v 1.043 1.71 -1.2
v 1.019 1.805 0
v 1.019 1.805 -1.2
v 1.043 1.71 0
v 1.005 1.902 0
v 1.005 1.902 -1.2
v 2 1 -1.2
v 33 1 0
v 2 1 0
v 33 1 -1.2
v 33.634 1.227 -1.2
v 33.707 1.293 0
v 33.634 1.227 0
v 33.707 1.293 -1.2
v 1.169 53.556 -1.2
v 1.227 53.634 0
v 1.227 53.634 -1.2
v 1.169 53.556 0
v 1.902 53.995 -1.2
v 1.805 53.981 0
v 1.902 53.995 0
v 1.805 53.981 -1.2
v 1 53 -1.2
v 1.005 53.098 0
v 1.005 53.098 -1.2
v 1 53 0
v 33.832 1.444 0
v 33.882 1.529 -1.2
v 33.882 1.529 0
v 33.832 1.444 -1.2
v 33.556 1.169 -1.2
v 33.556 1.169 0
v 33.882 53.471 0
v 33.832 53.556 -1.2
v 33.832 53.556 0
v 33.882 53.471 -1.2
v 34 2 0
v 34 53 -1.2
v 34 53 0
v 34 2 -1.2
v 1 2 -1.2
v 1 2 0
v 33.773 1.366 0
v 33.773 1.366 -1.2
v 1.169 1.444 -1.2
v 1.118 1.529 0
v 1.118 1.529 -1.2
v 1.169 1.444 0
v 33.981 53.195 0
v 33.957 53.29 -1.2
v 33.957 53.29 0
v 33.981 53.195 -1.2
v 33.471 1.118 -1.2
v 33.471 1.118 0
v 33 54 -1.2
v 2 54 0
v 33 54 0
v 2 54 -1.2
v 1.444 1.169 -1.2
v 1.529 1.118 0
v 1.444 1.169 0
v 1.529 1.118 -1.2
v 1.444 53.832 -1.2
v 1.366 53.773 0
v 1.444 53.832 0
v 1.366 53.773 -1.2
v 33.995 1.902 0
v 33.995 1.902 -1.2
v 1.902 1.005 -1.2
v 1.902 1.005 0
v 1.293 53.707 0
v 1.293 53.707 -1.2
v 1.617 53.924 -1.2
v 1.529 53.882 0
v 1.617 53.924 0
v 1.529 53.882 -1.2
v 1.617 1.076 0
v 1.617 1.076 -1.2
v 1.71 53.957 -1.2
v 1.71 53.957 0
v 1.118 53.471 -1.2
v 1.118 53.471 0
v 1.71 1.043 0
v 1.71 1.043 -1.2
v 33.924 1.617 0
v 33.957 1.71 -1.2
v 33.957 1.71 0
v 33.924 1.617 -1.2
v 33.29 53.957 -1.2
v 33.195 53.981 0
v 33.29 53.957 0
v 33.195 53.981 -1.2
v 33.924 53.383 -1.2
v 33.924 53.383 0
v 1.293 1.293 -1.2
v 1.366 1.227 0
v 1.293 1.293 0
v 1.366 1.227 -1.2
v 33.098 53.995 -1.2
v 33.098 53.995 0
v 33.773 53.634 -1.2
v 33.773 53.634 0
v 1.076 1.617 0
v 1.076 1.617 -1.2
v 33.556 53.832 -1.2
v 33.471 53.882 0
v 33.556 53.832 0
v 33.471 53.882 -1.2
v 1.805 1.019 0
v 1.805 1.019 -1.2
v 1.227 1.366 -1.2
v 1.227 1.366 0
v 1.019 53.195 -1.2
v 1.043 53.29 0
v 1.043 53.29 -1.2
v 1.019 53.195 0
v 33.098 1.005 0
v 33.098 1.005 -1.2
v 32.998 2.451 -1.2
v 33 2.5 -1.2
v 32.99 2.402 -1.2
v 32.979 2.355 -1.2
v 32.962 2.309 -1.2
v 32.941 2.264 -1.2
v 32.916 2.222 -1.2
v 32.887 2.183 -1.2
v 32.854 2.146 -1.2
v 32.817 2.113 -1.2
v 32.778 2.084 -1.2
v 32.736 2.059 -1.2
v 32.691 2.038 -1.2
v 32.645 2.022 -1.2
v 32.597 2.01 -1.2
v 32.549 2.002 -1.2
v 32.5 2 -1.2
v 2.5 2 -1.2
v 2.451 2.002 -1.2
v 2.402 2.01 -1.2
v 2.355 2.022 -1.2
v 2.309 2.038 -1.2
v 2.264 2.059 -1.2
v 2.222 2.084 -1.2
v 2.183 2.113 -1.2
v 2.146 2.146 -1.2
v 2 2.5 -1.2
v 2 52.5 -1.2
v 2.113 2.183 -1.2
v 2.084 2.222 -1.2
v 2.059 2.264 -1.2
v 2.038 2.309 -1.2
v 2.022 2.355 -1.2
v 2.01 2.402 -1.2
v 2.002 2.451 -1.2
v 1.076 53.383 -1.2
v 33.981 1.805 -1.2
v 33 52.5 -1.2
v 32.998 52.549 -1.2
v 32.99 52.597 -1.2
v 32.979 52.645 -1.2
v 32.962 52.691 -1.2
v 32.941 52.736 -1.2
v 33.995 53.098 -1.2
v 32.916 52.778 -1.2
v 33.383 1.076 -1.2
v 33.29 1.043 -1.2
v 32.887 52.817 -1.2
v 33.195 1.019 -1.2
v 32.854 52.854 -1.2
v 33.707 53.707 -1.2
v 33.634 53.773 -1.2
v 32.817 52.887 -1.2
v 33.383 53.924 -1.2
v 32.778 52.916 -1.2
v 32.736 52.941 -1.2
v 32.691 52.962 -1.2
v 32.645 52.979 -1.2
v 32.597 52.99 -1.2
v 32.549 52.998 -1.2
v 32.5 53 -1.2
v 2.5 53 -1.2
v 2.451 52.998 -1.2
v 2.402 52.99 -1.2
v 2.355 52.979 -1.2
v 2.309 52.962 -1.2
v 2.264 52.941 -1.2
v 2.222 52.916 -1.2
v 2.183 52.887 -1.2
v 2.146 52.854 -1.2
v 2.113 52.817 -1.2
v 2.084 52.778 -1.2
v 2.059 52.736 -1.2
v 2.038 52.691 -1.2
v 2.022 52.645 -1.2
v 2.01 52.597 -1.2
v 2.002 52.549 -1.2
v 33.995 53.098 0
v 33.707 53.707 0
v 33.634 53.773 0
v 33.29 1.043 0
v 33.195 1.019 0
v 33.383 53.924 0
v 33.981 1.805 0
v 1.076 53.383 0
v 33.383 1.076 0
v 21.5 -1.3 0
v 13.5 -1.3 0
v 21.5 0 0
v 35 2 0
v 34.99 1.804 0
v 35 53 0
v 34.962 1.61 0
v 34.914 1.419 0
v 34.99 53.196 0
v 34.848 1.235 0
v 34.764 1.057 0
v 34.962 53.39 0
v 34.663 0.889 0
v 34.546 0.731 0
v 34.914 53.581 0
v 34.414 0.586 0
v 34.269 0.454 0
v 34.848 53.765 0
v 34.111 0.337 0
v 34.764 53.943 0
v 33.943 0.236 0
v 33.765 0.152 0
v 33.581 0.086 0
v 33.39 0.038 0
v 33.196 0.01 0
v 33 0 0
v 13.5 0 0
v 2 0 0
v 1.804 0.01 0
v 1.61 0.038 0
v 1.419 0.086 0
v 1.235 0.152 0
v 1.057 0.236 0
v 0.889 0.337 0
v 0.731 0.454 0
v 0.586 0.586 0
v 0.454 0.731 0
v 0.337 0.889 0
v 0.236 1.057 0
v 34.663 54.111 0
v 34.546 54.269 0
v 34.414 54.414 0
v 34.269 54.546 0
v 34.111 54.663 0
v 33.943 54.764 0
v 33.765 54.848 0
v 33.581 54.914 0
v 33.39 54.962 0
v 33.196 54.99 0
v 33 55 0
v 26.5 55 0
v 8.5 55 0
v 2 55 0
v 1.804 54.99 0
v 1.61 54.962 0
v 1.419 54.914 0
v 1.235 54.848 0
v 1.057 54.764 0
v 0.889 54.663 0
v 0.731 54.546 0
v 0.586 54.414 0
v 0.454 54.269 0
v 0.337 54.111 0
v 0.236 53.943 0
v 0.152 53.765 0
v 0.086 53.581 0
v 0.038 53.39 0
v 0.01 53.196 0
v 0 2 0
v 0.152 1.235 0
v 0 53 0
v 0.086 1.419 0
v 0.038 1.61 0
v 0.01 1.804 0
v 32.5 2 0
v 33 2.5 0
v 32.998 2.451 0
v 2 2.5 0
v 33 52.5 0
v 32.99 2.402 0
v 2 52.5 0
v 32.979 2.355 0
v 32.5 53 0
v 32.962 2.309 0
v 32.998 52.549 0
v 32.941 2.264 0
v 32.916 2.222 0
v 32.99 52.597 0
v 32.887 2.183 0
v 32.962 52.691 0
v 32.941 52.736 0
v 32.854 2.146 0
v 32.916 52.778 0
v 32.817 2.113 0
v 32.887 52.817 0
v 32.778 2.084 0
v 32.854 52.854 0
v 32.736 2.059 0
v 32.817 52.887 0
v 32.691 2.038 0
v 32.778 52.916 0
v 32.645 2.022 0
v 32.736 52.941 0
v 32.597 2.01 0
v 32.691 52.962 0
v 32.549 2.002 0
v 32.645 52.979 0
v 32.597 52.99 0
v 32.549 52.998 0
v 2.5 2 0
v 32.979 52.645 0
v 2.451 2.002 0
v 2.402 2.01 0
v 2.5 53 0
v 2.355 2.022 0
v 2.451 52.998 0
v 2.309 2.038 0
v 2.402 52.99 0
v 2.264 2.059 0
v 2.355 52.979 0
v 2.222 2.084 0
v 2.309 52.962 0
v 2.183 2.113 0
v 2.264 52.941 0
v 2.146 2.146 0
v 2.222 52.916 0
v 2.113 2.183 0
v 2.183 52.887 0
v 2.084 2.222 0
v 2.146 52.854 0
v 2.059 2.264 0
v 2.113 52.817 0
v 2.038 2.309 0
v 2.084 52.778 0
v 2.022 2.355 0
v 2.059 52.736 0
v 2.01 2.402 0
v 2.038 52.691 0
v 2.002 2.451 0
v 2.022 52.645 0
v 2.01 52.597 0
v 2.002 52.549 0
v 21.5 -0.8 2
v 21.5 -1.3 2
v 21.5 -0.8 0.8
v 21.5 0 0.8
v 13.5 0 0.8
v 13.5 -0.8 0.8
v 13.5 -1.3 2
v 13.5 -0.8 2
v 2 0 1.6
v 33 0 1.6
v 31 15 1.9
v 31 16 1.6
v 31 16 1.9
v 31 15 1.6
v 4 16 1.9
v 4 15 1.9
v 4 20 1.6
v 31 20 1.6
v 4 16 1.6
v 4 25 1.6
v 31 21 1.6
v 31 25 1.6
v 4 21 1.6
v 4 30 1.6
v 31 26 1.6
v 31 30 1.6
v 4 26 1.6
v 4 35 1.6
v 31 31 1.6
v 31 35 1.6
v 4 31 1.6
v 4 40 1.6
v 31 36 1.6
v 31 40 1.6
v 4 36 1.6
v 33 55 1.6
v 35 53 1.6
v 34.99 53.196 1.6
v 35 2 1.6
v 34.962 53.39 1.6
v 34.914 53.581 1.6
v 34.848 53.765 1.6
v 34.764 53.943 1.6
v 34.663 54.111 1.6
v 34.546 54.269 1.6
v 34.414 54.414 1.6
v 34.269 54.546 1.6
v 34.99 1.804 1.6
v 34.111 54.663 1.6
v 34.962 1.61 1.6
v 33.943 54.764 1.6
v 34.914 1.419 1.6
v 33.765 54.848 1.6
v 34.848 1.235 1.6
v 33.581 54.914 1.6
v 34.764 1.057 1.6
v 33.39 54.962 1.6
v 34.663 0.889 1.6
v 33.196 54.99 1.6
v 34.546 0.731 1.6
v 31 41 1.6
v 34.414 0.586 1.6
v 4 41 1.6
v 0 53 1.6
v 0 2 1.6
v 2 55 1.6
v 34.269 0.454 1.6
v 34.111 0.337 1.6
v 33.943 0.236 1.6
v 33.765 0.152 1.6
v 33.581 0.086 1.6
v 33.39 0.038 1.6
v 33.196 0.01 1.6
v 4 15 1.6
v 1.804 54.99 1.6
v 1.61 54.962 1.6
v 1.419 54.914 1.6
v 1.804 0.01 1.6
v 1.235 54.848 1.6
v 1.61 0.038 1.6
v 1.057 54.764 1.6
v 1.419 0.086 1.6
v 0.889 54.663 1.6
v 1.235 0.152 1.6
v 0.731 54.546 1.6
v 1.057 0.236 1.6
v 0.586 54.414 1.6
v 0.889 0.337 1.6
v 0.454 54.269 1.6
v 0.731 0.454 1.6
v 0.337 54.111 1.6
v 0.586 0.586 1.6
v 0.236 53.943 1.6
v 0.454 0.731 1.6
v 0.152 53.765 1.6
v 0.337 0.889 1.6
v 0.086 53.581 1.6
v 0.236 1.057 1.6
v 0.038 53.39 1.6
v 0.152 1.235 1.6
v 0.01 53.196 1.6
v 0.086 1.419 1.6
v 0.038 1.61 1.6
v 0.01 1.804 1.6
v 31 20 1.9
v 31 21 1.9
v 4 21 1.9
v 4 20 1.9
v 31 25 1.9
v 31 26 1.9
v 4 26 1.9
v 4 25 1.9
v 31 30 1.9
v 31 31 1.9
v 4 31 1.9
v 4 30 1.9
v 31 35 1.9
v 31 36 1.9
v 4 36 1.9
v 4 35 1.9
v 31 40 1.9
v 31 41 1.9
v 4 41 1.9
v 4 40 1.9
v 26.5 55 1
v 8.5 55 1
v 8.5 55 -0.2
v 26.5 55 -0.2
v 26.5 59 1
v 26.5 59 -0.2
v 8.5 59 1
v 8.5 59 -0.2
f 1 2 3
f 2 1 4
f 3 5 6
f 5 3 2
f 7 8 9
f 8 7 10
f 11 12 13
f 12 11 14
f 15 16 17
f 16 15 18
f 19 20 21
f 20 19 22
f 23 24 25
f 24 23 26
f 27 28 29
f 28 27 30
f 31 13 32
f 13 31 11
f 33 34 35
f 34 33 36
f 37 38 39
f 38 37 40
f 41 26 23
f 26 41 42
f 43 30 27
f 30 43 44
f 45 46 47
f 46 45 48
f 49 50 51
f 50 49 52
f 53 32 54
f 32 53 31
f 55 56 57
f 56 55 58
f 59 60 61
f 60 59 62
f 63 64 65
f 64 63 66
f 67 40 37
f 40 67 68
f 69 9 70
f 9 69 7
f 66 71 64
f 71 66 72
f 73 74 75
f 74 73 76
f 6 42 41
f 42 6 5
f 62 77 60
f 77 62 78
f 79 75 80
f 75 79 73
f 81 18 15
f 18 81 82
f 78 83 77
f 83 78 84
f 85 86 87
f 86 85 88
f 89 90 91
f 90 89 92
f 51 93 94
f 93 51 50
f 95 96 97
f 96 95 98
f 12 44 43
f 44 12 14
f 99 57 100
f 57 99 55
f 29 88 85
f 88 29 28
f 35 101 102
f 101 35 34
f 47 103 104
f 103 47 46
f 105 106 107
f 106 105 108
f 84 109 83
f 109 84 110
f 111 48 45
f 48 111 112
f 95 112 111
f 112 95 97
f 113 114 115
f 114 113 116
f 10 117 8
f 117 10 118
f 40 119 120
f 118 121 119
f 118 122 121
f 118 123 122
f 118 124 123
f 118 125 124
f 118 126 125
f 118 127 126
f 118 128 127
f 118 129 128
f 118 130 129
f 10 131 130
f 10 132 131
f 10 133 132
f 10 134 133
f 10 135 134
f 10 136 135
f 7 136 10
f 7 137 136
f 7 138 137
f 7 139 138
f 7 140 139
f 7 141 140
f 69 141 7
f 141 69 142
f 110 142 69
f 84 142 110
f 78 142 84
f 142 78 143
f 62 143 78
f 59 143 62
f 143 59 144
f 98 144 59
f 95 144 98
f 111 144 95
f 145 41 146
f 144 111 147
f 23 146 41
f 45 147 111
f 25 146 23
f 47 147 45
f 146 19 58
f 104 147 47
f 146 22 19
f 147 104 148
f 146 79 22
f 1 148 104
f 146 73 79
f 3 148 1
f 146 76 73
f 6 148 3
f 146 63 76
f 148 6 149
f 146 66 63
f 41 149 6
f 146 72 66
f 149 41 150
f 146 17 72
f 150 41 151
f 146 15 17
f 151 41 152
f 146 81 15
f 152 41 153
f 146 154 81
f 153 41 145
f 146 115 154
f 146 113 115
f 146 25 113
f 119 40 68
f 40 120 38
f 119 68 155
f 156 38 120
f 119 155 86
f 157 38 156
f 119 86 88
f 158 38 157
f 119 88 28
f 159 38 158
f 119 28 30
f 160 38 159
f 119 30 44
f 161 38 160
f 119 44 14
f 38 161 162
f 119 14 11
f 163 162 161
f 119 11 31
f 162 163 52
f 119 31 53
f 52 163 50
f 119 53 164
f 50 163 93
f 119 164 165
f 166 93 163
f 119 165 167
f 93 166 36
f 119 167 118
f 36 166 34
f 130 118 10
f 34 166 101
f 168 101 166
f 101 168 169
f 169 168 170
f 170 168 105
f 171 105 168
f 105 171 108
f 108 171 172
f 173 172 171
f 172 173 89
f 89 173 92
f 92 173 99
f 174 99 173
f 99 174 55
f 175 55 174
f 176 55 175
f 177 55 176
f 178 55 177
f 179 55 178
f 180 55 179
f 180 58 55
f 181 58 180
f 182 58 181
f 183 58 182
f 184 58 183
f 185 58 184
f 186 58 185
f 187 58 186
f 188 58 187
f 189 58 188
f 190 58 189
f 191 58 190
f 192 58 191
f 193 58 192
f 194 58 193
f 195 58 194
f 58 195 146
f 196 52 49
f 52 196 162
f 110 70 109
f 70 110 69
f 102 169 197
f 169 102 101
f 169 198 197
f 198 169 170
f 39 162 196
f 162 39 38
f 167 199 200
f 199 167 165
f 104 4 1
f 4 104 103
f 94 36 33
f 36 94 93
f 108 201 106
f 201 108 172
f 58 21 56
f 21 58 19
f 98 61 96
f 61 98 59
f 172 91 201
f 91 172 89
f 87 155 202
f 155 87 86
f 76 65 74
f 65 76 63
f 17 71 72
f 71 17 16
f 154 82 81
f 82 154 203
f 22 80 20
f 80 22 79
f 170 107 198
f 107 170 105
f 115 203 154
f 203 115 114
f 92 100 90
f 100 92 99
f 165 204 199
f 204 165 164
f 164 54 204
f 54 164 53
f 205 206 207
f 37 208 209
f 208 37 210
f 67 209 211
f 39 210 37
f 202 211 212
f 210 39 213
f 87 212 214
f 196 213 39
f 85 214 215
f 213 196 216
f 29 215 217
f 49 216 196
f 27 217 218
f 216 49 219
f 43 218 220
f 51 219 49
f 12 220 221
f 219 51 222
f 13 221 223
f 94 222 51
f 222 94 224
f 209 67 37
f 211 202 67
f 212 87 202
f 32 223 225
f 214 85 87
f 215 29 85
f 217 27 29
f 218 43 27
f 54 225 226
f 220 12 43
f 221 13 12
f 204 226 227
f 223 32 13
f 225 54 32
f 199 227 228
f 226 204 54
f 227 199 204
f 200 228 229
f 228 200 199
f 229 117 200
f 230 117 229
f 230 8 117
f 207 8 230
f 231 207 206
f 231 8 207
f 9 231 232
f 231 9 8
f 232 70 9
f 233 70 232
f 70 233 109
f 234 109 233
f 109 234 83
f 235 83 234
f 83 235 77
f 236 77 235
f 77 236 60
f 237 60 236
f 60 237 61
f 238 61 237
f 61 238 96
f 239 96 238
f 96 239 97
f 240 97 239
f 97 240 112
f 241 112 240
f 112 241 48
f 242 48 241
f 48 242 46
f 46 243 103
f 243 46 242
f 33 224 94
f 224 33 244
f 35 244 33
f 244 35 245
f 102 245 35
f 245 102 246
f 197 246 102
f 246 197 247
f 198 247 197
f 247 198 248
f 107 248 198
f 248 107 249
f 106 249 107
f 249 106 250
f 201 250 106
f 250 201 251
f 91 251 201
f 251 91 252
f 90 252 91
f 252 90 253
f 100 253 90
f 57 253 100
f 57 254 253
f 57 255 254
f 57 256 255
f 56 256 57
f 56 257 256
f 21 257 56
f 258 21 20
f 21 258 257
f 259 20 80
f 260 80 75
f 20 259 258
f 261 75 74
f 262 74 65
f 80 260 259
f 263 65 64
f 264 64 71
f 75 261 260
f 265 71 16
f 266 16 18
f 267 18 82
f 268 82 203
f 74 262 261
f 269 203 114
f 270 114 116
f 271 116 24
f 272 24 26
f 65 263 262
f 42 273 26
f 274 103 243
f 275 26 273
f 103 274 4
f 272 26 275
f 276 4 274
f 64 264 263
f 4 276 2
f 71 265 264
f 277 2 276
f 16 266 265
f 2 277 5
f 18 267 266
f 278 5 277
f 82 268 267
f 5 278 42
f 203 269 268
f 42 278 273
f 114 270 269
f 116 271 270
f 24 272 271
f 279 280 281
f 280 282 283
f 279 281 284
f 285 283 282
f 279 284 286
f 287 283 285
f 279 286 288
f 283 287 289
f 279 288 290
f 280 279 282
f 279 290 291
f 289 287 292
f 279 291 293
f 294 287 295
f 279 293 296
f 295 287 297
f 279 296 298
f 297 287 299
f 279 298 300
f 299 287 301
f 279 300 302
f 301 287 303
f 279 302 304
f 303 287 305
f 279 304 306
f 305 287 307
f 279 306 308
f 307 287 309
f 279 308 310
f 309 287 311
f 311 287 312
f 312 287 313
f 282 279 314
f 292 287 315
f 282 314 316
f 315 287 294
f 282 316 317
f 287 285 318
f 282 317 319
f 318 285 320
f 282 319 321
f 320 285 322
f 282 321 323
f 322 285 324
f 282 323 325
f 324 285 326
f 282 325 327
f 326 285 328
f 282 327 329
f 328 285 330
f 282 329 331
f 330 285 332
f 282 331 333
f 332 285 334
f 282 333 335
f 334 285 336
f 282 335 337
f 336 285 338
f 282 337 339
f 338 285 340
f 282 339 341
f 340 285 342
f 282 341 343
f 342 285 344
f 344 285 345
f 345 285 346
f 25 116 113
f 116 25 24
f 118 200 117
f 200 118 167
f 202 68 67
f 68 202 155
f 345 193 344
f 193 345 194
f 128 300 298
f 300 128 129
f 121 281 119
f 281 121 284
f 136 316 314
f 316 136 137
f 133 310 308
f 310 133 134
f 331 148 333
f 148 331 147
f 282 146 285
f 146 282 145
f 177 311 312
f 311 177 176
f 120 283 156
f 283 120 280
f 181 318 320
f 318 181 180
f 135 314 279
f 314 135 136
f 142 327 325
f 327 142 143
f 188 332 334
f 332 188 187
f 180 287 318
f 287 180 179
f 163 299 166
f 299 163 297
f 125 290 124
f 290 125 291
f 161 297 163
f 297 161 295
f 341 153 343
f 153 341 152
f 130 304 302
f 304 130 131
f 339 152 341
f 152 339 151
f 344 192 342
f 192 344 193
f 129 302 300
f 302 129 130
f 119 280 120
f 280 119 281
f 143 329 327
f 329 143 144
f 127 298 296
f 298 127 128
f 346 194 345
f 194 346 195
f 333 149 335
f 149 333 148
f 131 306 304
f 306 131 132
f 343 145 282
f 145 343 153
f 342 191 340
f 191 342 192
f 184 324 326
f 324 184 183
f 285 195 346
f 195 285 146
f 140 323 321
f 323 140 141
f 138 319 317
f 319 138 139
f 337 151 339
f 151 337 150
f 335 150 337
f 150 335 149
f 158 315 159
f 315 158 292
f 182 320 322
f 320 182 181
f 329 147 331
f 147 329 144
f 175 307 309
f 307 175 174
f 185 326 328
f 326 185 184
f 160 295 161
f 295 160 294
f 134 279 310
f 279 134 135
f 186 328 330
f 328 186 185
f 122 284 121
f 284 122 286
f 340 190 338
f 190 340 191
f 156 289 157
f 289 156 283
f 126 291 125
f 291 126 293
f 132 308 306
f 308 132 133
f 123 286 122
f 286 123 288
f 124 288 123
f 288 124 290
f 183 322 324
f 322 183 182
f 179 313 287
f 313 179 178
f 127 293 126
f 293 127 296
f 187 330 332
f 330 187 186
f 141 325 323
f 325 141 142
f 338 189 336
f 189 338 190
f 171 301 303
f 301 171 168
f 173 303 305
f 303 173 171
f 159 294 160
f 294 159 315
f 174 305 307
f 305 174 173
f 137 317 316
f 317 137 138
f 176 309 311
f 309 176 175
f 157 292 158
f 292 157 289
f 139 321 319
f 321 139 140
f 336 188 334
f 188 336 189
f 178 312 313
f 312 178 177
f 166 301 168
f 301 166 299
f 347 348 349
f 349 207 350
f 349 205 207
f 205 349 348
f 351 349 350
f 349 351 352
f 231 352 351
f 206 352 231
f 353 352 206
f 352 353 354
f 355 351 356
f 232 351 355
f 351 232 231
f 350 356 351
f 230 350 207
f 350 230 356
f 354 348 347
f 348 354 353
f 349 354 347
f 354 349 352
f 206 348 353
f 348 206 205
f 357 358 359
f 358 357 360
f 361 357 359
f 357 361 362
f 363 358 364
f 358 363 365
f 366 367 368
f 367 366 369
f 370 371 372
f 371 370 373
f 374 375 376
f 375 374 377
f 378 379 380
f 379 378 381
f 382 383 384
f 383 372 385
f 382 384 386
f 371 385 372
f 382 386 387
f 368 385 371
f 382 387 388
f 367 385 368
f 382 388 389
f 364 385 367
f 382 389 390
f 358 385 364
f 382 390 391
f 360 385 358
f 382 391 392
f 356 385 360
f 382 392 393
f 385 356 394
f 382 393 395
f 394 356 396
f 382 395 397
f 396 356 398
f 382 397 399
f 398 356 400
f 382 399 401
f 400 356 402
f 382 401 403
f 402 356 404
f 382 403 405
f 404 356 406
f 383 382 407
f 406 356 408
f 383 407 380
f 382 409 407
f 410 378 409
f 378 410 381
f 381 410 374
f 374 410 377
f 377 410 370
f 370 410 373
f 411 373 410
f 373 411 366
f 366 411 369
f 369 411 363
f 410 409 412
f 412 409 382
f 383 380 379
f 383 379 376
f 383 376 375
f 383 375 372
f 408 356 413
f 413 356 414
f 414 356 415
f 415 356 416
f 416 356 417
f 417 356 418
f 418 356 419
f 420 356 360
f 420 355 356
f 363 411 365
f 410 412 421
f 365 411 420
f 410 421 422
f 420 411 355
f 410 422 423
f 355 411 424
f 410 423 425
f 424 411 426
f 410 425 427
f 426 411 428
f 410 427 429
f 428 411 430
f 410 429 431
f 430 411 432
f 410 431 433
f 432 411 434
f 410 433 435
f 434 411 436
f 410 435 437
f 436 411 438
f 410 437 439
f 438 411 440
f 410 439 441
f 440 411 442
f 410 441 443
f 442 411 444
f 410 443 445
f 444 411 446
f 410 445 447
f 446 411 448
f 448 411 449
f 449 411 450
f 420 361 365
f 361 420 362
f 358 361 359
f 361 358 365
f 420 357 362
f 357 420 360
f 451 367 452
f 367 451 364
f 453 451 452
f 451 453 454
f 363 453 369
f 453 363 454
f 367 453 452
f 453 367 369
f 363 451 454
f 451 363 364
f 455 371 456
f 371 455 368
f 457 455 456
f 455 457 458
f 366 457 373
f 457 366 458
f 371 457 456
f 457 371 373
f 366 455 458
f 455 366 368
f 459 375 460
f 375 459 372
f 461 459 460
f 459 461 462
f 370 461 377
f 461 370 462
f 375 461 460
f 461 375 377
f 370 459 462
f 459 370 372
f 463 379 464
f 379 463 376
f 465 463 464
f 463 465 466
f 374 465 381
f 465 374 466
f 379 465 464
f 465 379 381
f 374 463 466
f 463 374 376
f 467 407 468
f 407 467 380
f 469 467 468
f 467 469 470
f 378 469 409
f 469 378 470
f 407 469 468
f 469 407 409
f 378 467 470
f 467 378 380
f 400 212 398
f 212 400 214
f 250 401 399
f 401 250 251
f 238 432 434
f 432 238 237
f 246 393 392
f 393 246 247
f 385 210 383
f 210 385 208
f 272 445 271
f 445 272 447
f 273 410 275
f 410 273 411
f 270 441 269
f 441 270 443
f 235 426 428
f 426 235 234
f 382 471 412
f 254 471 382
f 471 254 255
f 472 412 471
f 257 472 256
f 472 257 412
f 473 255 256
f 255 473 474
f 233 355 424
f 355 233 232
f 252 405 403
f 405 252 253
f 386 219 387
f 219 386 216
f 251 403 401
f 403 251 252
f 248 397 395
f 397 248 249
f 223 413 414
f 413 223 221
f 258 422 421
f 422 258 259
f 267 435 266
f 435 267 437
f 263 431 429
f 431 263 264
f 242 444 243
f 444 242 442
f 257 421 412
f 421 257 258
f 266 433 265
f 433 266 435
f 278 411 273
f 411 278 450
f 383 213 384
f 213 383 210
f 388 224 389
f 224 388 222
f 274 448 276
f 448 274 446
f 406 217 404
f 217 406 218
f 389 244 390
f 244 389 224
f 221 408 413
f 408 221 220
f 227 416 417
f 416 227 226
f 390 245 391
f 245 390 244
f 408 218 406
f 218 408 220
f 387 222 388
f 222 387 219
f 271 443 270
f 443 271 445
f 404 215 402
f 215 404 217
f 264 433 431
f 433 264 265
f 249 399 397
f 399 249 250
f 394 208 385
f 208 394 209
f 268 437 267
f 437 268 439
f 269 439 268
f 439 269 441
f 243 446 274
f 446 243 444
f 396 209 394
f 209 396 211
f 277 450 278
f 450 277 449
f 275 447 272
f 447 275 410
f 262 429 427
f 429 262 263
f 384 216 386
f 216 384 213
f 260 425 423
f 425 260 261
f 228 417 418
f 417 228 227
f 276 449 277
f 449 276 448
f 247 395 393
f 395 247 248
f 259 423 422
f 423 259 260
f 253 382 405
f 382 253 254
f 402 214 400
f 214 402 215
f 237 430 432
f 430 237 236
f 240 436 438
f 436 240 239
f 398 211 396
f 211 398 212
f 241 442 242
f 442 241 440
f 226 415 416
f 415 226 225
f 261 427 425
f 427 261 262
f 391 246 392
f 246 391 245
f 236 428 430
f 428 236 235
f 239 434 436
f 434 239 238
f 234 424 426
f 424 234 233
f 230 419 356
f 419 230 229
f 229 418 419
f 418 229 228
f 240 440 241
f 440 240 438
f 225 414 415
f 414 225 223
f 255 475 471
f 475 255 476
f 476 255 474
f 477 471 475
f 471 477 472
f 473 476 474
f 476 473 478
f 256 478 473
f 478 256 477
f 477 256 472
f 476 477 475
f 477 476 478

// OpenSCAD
// Game Boy Color (CGB-001) Battery Cover
// Dimensions based on standard GBC battery cover specs
$fn = 64;

// Main cover body dimensions
cover_length = 55.0;   // top to bottom
cover_width  = 35.0;   // left to right
cover_thick  = 1.6;    // wall thickness

// Corner radius
corner_r = 2.0;

// Slide tab at top (slides into console groove)
tab_width = 18.0;
tab_length = 4.0;
tab_thick = 1.2;
tab_offset_z = -0.2; // sits slightly recessed

// Latch catch at bottom (snaps into place)
latch_width = 8.0;
latch_height = 2.0;
latch_depth = 1.0;
latch_thick = 0.8;

// Inner lip/rim around perimeter (sits inside the battery well)
lip_height = 1.2;
lip_inset = 1.0;

// Slight texture ridge (grip lines on original cover)
ridge_count = 6;
ridge_spacing = 5.0;
ridge_width = 1.0;
ridge_height = 0.3;

module rounded_rect(w, l, h, r) {
    hull() {
        for (x = [r, w - r])
            for (y = [r, l - r])
                translate([x, y, 0])
                    cylinder(r = r, h = h);
    }
}

module cover_body() {
    // Main flat cover plate
    rounded_rect(cover_width, cover_length, cover_thick, corner_r);
}

module inner_lip() {
    // Perimeter lip that sits inside the battery compartment
    difference() {
        translate([lip_inset, lip_inset, -lip_height])
            rounded_rect(
                cover_width - 2 * lip_inset,
                cover_length - 2 * lip_inset,
                lip_height,
                corner_r - lip_inset
            );
        translate([lip_inset + lip_inset, lip_inset + lip_inset, -lip_height - 0.1])
            rounded_rect(
                cover_width - 4 * lip_inset,
                cover_length - 4 * lip_inset,
                lip_height + 0.2,
                max(0.5, corner_r - 2 * lip_inset)
            );
    }
}

module slide_tab() {
    // Tab at top edge that slides into the console slot
    translate([(cover_width - tab_width) / 2, cover_length, tab_offset_z])
        cube([tab_width, tab_length, tab_thick]);
}

module snap_latch() {
    // Spring latch at bottom that clicks into place
    translate([(cover_width - latch_width) / 2, -latch_depth, 0]) {
        // Latch arm
        cube([latch_width, latch_depth, latch_thick]);
        // Catch bump
        translate([0, -0.3, 0])
            cube([latch_width, 0.5, latch_height]);
    }
}

module grip_ridges() {
    // Horizontal grip lines on the outer surface (like original)
    start_y = (cover_length - (ridge_count - 1) * ridge_spacing) / 2;
    for (i = [0 : ridge_count - 1]) {
        translate([4, start_y + i * ridge_spacing, cover_thick])
            cube([cover_width - 8, ridge_width, ridge_height]);
    }
}

// Assemble
union() {
    cover_body();
    inner_lip();
    slide_tab();
    snap_latch();
    grip_ridges();
}
